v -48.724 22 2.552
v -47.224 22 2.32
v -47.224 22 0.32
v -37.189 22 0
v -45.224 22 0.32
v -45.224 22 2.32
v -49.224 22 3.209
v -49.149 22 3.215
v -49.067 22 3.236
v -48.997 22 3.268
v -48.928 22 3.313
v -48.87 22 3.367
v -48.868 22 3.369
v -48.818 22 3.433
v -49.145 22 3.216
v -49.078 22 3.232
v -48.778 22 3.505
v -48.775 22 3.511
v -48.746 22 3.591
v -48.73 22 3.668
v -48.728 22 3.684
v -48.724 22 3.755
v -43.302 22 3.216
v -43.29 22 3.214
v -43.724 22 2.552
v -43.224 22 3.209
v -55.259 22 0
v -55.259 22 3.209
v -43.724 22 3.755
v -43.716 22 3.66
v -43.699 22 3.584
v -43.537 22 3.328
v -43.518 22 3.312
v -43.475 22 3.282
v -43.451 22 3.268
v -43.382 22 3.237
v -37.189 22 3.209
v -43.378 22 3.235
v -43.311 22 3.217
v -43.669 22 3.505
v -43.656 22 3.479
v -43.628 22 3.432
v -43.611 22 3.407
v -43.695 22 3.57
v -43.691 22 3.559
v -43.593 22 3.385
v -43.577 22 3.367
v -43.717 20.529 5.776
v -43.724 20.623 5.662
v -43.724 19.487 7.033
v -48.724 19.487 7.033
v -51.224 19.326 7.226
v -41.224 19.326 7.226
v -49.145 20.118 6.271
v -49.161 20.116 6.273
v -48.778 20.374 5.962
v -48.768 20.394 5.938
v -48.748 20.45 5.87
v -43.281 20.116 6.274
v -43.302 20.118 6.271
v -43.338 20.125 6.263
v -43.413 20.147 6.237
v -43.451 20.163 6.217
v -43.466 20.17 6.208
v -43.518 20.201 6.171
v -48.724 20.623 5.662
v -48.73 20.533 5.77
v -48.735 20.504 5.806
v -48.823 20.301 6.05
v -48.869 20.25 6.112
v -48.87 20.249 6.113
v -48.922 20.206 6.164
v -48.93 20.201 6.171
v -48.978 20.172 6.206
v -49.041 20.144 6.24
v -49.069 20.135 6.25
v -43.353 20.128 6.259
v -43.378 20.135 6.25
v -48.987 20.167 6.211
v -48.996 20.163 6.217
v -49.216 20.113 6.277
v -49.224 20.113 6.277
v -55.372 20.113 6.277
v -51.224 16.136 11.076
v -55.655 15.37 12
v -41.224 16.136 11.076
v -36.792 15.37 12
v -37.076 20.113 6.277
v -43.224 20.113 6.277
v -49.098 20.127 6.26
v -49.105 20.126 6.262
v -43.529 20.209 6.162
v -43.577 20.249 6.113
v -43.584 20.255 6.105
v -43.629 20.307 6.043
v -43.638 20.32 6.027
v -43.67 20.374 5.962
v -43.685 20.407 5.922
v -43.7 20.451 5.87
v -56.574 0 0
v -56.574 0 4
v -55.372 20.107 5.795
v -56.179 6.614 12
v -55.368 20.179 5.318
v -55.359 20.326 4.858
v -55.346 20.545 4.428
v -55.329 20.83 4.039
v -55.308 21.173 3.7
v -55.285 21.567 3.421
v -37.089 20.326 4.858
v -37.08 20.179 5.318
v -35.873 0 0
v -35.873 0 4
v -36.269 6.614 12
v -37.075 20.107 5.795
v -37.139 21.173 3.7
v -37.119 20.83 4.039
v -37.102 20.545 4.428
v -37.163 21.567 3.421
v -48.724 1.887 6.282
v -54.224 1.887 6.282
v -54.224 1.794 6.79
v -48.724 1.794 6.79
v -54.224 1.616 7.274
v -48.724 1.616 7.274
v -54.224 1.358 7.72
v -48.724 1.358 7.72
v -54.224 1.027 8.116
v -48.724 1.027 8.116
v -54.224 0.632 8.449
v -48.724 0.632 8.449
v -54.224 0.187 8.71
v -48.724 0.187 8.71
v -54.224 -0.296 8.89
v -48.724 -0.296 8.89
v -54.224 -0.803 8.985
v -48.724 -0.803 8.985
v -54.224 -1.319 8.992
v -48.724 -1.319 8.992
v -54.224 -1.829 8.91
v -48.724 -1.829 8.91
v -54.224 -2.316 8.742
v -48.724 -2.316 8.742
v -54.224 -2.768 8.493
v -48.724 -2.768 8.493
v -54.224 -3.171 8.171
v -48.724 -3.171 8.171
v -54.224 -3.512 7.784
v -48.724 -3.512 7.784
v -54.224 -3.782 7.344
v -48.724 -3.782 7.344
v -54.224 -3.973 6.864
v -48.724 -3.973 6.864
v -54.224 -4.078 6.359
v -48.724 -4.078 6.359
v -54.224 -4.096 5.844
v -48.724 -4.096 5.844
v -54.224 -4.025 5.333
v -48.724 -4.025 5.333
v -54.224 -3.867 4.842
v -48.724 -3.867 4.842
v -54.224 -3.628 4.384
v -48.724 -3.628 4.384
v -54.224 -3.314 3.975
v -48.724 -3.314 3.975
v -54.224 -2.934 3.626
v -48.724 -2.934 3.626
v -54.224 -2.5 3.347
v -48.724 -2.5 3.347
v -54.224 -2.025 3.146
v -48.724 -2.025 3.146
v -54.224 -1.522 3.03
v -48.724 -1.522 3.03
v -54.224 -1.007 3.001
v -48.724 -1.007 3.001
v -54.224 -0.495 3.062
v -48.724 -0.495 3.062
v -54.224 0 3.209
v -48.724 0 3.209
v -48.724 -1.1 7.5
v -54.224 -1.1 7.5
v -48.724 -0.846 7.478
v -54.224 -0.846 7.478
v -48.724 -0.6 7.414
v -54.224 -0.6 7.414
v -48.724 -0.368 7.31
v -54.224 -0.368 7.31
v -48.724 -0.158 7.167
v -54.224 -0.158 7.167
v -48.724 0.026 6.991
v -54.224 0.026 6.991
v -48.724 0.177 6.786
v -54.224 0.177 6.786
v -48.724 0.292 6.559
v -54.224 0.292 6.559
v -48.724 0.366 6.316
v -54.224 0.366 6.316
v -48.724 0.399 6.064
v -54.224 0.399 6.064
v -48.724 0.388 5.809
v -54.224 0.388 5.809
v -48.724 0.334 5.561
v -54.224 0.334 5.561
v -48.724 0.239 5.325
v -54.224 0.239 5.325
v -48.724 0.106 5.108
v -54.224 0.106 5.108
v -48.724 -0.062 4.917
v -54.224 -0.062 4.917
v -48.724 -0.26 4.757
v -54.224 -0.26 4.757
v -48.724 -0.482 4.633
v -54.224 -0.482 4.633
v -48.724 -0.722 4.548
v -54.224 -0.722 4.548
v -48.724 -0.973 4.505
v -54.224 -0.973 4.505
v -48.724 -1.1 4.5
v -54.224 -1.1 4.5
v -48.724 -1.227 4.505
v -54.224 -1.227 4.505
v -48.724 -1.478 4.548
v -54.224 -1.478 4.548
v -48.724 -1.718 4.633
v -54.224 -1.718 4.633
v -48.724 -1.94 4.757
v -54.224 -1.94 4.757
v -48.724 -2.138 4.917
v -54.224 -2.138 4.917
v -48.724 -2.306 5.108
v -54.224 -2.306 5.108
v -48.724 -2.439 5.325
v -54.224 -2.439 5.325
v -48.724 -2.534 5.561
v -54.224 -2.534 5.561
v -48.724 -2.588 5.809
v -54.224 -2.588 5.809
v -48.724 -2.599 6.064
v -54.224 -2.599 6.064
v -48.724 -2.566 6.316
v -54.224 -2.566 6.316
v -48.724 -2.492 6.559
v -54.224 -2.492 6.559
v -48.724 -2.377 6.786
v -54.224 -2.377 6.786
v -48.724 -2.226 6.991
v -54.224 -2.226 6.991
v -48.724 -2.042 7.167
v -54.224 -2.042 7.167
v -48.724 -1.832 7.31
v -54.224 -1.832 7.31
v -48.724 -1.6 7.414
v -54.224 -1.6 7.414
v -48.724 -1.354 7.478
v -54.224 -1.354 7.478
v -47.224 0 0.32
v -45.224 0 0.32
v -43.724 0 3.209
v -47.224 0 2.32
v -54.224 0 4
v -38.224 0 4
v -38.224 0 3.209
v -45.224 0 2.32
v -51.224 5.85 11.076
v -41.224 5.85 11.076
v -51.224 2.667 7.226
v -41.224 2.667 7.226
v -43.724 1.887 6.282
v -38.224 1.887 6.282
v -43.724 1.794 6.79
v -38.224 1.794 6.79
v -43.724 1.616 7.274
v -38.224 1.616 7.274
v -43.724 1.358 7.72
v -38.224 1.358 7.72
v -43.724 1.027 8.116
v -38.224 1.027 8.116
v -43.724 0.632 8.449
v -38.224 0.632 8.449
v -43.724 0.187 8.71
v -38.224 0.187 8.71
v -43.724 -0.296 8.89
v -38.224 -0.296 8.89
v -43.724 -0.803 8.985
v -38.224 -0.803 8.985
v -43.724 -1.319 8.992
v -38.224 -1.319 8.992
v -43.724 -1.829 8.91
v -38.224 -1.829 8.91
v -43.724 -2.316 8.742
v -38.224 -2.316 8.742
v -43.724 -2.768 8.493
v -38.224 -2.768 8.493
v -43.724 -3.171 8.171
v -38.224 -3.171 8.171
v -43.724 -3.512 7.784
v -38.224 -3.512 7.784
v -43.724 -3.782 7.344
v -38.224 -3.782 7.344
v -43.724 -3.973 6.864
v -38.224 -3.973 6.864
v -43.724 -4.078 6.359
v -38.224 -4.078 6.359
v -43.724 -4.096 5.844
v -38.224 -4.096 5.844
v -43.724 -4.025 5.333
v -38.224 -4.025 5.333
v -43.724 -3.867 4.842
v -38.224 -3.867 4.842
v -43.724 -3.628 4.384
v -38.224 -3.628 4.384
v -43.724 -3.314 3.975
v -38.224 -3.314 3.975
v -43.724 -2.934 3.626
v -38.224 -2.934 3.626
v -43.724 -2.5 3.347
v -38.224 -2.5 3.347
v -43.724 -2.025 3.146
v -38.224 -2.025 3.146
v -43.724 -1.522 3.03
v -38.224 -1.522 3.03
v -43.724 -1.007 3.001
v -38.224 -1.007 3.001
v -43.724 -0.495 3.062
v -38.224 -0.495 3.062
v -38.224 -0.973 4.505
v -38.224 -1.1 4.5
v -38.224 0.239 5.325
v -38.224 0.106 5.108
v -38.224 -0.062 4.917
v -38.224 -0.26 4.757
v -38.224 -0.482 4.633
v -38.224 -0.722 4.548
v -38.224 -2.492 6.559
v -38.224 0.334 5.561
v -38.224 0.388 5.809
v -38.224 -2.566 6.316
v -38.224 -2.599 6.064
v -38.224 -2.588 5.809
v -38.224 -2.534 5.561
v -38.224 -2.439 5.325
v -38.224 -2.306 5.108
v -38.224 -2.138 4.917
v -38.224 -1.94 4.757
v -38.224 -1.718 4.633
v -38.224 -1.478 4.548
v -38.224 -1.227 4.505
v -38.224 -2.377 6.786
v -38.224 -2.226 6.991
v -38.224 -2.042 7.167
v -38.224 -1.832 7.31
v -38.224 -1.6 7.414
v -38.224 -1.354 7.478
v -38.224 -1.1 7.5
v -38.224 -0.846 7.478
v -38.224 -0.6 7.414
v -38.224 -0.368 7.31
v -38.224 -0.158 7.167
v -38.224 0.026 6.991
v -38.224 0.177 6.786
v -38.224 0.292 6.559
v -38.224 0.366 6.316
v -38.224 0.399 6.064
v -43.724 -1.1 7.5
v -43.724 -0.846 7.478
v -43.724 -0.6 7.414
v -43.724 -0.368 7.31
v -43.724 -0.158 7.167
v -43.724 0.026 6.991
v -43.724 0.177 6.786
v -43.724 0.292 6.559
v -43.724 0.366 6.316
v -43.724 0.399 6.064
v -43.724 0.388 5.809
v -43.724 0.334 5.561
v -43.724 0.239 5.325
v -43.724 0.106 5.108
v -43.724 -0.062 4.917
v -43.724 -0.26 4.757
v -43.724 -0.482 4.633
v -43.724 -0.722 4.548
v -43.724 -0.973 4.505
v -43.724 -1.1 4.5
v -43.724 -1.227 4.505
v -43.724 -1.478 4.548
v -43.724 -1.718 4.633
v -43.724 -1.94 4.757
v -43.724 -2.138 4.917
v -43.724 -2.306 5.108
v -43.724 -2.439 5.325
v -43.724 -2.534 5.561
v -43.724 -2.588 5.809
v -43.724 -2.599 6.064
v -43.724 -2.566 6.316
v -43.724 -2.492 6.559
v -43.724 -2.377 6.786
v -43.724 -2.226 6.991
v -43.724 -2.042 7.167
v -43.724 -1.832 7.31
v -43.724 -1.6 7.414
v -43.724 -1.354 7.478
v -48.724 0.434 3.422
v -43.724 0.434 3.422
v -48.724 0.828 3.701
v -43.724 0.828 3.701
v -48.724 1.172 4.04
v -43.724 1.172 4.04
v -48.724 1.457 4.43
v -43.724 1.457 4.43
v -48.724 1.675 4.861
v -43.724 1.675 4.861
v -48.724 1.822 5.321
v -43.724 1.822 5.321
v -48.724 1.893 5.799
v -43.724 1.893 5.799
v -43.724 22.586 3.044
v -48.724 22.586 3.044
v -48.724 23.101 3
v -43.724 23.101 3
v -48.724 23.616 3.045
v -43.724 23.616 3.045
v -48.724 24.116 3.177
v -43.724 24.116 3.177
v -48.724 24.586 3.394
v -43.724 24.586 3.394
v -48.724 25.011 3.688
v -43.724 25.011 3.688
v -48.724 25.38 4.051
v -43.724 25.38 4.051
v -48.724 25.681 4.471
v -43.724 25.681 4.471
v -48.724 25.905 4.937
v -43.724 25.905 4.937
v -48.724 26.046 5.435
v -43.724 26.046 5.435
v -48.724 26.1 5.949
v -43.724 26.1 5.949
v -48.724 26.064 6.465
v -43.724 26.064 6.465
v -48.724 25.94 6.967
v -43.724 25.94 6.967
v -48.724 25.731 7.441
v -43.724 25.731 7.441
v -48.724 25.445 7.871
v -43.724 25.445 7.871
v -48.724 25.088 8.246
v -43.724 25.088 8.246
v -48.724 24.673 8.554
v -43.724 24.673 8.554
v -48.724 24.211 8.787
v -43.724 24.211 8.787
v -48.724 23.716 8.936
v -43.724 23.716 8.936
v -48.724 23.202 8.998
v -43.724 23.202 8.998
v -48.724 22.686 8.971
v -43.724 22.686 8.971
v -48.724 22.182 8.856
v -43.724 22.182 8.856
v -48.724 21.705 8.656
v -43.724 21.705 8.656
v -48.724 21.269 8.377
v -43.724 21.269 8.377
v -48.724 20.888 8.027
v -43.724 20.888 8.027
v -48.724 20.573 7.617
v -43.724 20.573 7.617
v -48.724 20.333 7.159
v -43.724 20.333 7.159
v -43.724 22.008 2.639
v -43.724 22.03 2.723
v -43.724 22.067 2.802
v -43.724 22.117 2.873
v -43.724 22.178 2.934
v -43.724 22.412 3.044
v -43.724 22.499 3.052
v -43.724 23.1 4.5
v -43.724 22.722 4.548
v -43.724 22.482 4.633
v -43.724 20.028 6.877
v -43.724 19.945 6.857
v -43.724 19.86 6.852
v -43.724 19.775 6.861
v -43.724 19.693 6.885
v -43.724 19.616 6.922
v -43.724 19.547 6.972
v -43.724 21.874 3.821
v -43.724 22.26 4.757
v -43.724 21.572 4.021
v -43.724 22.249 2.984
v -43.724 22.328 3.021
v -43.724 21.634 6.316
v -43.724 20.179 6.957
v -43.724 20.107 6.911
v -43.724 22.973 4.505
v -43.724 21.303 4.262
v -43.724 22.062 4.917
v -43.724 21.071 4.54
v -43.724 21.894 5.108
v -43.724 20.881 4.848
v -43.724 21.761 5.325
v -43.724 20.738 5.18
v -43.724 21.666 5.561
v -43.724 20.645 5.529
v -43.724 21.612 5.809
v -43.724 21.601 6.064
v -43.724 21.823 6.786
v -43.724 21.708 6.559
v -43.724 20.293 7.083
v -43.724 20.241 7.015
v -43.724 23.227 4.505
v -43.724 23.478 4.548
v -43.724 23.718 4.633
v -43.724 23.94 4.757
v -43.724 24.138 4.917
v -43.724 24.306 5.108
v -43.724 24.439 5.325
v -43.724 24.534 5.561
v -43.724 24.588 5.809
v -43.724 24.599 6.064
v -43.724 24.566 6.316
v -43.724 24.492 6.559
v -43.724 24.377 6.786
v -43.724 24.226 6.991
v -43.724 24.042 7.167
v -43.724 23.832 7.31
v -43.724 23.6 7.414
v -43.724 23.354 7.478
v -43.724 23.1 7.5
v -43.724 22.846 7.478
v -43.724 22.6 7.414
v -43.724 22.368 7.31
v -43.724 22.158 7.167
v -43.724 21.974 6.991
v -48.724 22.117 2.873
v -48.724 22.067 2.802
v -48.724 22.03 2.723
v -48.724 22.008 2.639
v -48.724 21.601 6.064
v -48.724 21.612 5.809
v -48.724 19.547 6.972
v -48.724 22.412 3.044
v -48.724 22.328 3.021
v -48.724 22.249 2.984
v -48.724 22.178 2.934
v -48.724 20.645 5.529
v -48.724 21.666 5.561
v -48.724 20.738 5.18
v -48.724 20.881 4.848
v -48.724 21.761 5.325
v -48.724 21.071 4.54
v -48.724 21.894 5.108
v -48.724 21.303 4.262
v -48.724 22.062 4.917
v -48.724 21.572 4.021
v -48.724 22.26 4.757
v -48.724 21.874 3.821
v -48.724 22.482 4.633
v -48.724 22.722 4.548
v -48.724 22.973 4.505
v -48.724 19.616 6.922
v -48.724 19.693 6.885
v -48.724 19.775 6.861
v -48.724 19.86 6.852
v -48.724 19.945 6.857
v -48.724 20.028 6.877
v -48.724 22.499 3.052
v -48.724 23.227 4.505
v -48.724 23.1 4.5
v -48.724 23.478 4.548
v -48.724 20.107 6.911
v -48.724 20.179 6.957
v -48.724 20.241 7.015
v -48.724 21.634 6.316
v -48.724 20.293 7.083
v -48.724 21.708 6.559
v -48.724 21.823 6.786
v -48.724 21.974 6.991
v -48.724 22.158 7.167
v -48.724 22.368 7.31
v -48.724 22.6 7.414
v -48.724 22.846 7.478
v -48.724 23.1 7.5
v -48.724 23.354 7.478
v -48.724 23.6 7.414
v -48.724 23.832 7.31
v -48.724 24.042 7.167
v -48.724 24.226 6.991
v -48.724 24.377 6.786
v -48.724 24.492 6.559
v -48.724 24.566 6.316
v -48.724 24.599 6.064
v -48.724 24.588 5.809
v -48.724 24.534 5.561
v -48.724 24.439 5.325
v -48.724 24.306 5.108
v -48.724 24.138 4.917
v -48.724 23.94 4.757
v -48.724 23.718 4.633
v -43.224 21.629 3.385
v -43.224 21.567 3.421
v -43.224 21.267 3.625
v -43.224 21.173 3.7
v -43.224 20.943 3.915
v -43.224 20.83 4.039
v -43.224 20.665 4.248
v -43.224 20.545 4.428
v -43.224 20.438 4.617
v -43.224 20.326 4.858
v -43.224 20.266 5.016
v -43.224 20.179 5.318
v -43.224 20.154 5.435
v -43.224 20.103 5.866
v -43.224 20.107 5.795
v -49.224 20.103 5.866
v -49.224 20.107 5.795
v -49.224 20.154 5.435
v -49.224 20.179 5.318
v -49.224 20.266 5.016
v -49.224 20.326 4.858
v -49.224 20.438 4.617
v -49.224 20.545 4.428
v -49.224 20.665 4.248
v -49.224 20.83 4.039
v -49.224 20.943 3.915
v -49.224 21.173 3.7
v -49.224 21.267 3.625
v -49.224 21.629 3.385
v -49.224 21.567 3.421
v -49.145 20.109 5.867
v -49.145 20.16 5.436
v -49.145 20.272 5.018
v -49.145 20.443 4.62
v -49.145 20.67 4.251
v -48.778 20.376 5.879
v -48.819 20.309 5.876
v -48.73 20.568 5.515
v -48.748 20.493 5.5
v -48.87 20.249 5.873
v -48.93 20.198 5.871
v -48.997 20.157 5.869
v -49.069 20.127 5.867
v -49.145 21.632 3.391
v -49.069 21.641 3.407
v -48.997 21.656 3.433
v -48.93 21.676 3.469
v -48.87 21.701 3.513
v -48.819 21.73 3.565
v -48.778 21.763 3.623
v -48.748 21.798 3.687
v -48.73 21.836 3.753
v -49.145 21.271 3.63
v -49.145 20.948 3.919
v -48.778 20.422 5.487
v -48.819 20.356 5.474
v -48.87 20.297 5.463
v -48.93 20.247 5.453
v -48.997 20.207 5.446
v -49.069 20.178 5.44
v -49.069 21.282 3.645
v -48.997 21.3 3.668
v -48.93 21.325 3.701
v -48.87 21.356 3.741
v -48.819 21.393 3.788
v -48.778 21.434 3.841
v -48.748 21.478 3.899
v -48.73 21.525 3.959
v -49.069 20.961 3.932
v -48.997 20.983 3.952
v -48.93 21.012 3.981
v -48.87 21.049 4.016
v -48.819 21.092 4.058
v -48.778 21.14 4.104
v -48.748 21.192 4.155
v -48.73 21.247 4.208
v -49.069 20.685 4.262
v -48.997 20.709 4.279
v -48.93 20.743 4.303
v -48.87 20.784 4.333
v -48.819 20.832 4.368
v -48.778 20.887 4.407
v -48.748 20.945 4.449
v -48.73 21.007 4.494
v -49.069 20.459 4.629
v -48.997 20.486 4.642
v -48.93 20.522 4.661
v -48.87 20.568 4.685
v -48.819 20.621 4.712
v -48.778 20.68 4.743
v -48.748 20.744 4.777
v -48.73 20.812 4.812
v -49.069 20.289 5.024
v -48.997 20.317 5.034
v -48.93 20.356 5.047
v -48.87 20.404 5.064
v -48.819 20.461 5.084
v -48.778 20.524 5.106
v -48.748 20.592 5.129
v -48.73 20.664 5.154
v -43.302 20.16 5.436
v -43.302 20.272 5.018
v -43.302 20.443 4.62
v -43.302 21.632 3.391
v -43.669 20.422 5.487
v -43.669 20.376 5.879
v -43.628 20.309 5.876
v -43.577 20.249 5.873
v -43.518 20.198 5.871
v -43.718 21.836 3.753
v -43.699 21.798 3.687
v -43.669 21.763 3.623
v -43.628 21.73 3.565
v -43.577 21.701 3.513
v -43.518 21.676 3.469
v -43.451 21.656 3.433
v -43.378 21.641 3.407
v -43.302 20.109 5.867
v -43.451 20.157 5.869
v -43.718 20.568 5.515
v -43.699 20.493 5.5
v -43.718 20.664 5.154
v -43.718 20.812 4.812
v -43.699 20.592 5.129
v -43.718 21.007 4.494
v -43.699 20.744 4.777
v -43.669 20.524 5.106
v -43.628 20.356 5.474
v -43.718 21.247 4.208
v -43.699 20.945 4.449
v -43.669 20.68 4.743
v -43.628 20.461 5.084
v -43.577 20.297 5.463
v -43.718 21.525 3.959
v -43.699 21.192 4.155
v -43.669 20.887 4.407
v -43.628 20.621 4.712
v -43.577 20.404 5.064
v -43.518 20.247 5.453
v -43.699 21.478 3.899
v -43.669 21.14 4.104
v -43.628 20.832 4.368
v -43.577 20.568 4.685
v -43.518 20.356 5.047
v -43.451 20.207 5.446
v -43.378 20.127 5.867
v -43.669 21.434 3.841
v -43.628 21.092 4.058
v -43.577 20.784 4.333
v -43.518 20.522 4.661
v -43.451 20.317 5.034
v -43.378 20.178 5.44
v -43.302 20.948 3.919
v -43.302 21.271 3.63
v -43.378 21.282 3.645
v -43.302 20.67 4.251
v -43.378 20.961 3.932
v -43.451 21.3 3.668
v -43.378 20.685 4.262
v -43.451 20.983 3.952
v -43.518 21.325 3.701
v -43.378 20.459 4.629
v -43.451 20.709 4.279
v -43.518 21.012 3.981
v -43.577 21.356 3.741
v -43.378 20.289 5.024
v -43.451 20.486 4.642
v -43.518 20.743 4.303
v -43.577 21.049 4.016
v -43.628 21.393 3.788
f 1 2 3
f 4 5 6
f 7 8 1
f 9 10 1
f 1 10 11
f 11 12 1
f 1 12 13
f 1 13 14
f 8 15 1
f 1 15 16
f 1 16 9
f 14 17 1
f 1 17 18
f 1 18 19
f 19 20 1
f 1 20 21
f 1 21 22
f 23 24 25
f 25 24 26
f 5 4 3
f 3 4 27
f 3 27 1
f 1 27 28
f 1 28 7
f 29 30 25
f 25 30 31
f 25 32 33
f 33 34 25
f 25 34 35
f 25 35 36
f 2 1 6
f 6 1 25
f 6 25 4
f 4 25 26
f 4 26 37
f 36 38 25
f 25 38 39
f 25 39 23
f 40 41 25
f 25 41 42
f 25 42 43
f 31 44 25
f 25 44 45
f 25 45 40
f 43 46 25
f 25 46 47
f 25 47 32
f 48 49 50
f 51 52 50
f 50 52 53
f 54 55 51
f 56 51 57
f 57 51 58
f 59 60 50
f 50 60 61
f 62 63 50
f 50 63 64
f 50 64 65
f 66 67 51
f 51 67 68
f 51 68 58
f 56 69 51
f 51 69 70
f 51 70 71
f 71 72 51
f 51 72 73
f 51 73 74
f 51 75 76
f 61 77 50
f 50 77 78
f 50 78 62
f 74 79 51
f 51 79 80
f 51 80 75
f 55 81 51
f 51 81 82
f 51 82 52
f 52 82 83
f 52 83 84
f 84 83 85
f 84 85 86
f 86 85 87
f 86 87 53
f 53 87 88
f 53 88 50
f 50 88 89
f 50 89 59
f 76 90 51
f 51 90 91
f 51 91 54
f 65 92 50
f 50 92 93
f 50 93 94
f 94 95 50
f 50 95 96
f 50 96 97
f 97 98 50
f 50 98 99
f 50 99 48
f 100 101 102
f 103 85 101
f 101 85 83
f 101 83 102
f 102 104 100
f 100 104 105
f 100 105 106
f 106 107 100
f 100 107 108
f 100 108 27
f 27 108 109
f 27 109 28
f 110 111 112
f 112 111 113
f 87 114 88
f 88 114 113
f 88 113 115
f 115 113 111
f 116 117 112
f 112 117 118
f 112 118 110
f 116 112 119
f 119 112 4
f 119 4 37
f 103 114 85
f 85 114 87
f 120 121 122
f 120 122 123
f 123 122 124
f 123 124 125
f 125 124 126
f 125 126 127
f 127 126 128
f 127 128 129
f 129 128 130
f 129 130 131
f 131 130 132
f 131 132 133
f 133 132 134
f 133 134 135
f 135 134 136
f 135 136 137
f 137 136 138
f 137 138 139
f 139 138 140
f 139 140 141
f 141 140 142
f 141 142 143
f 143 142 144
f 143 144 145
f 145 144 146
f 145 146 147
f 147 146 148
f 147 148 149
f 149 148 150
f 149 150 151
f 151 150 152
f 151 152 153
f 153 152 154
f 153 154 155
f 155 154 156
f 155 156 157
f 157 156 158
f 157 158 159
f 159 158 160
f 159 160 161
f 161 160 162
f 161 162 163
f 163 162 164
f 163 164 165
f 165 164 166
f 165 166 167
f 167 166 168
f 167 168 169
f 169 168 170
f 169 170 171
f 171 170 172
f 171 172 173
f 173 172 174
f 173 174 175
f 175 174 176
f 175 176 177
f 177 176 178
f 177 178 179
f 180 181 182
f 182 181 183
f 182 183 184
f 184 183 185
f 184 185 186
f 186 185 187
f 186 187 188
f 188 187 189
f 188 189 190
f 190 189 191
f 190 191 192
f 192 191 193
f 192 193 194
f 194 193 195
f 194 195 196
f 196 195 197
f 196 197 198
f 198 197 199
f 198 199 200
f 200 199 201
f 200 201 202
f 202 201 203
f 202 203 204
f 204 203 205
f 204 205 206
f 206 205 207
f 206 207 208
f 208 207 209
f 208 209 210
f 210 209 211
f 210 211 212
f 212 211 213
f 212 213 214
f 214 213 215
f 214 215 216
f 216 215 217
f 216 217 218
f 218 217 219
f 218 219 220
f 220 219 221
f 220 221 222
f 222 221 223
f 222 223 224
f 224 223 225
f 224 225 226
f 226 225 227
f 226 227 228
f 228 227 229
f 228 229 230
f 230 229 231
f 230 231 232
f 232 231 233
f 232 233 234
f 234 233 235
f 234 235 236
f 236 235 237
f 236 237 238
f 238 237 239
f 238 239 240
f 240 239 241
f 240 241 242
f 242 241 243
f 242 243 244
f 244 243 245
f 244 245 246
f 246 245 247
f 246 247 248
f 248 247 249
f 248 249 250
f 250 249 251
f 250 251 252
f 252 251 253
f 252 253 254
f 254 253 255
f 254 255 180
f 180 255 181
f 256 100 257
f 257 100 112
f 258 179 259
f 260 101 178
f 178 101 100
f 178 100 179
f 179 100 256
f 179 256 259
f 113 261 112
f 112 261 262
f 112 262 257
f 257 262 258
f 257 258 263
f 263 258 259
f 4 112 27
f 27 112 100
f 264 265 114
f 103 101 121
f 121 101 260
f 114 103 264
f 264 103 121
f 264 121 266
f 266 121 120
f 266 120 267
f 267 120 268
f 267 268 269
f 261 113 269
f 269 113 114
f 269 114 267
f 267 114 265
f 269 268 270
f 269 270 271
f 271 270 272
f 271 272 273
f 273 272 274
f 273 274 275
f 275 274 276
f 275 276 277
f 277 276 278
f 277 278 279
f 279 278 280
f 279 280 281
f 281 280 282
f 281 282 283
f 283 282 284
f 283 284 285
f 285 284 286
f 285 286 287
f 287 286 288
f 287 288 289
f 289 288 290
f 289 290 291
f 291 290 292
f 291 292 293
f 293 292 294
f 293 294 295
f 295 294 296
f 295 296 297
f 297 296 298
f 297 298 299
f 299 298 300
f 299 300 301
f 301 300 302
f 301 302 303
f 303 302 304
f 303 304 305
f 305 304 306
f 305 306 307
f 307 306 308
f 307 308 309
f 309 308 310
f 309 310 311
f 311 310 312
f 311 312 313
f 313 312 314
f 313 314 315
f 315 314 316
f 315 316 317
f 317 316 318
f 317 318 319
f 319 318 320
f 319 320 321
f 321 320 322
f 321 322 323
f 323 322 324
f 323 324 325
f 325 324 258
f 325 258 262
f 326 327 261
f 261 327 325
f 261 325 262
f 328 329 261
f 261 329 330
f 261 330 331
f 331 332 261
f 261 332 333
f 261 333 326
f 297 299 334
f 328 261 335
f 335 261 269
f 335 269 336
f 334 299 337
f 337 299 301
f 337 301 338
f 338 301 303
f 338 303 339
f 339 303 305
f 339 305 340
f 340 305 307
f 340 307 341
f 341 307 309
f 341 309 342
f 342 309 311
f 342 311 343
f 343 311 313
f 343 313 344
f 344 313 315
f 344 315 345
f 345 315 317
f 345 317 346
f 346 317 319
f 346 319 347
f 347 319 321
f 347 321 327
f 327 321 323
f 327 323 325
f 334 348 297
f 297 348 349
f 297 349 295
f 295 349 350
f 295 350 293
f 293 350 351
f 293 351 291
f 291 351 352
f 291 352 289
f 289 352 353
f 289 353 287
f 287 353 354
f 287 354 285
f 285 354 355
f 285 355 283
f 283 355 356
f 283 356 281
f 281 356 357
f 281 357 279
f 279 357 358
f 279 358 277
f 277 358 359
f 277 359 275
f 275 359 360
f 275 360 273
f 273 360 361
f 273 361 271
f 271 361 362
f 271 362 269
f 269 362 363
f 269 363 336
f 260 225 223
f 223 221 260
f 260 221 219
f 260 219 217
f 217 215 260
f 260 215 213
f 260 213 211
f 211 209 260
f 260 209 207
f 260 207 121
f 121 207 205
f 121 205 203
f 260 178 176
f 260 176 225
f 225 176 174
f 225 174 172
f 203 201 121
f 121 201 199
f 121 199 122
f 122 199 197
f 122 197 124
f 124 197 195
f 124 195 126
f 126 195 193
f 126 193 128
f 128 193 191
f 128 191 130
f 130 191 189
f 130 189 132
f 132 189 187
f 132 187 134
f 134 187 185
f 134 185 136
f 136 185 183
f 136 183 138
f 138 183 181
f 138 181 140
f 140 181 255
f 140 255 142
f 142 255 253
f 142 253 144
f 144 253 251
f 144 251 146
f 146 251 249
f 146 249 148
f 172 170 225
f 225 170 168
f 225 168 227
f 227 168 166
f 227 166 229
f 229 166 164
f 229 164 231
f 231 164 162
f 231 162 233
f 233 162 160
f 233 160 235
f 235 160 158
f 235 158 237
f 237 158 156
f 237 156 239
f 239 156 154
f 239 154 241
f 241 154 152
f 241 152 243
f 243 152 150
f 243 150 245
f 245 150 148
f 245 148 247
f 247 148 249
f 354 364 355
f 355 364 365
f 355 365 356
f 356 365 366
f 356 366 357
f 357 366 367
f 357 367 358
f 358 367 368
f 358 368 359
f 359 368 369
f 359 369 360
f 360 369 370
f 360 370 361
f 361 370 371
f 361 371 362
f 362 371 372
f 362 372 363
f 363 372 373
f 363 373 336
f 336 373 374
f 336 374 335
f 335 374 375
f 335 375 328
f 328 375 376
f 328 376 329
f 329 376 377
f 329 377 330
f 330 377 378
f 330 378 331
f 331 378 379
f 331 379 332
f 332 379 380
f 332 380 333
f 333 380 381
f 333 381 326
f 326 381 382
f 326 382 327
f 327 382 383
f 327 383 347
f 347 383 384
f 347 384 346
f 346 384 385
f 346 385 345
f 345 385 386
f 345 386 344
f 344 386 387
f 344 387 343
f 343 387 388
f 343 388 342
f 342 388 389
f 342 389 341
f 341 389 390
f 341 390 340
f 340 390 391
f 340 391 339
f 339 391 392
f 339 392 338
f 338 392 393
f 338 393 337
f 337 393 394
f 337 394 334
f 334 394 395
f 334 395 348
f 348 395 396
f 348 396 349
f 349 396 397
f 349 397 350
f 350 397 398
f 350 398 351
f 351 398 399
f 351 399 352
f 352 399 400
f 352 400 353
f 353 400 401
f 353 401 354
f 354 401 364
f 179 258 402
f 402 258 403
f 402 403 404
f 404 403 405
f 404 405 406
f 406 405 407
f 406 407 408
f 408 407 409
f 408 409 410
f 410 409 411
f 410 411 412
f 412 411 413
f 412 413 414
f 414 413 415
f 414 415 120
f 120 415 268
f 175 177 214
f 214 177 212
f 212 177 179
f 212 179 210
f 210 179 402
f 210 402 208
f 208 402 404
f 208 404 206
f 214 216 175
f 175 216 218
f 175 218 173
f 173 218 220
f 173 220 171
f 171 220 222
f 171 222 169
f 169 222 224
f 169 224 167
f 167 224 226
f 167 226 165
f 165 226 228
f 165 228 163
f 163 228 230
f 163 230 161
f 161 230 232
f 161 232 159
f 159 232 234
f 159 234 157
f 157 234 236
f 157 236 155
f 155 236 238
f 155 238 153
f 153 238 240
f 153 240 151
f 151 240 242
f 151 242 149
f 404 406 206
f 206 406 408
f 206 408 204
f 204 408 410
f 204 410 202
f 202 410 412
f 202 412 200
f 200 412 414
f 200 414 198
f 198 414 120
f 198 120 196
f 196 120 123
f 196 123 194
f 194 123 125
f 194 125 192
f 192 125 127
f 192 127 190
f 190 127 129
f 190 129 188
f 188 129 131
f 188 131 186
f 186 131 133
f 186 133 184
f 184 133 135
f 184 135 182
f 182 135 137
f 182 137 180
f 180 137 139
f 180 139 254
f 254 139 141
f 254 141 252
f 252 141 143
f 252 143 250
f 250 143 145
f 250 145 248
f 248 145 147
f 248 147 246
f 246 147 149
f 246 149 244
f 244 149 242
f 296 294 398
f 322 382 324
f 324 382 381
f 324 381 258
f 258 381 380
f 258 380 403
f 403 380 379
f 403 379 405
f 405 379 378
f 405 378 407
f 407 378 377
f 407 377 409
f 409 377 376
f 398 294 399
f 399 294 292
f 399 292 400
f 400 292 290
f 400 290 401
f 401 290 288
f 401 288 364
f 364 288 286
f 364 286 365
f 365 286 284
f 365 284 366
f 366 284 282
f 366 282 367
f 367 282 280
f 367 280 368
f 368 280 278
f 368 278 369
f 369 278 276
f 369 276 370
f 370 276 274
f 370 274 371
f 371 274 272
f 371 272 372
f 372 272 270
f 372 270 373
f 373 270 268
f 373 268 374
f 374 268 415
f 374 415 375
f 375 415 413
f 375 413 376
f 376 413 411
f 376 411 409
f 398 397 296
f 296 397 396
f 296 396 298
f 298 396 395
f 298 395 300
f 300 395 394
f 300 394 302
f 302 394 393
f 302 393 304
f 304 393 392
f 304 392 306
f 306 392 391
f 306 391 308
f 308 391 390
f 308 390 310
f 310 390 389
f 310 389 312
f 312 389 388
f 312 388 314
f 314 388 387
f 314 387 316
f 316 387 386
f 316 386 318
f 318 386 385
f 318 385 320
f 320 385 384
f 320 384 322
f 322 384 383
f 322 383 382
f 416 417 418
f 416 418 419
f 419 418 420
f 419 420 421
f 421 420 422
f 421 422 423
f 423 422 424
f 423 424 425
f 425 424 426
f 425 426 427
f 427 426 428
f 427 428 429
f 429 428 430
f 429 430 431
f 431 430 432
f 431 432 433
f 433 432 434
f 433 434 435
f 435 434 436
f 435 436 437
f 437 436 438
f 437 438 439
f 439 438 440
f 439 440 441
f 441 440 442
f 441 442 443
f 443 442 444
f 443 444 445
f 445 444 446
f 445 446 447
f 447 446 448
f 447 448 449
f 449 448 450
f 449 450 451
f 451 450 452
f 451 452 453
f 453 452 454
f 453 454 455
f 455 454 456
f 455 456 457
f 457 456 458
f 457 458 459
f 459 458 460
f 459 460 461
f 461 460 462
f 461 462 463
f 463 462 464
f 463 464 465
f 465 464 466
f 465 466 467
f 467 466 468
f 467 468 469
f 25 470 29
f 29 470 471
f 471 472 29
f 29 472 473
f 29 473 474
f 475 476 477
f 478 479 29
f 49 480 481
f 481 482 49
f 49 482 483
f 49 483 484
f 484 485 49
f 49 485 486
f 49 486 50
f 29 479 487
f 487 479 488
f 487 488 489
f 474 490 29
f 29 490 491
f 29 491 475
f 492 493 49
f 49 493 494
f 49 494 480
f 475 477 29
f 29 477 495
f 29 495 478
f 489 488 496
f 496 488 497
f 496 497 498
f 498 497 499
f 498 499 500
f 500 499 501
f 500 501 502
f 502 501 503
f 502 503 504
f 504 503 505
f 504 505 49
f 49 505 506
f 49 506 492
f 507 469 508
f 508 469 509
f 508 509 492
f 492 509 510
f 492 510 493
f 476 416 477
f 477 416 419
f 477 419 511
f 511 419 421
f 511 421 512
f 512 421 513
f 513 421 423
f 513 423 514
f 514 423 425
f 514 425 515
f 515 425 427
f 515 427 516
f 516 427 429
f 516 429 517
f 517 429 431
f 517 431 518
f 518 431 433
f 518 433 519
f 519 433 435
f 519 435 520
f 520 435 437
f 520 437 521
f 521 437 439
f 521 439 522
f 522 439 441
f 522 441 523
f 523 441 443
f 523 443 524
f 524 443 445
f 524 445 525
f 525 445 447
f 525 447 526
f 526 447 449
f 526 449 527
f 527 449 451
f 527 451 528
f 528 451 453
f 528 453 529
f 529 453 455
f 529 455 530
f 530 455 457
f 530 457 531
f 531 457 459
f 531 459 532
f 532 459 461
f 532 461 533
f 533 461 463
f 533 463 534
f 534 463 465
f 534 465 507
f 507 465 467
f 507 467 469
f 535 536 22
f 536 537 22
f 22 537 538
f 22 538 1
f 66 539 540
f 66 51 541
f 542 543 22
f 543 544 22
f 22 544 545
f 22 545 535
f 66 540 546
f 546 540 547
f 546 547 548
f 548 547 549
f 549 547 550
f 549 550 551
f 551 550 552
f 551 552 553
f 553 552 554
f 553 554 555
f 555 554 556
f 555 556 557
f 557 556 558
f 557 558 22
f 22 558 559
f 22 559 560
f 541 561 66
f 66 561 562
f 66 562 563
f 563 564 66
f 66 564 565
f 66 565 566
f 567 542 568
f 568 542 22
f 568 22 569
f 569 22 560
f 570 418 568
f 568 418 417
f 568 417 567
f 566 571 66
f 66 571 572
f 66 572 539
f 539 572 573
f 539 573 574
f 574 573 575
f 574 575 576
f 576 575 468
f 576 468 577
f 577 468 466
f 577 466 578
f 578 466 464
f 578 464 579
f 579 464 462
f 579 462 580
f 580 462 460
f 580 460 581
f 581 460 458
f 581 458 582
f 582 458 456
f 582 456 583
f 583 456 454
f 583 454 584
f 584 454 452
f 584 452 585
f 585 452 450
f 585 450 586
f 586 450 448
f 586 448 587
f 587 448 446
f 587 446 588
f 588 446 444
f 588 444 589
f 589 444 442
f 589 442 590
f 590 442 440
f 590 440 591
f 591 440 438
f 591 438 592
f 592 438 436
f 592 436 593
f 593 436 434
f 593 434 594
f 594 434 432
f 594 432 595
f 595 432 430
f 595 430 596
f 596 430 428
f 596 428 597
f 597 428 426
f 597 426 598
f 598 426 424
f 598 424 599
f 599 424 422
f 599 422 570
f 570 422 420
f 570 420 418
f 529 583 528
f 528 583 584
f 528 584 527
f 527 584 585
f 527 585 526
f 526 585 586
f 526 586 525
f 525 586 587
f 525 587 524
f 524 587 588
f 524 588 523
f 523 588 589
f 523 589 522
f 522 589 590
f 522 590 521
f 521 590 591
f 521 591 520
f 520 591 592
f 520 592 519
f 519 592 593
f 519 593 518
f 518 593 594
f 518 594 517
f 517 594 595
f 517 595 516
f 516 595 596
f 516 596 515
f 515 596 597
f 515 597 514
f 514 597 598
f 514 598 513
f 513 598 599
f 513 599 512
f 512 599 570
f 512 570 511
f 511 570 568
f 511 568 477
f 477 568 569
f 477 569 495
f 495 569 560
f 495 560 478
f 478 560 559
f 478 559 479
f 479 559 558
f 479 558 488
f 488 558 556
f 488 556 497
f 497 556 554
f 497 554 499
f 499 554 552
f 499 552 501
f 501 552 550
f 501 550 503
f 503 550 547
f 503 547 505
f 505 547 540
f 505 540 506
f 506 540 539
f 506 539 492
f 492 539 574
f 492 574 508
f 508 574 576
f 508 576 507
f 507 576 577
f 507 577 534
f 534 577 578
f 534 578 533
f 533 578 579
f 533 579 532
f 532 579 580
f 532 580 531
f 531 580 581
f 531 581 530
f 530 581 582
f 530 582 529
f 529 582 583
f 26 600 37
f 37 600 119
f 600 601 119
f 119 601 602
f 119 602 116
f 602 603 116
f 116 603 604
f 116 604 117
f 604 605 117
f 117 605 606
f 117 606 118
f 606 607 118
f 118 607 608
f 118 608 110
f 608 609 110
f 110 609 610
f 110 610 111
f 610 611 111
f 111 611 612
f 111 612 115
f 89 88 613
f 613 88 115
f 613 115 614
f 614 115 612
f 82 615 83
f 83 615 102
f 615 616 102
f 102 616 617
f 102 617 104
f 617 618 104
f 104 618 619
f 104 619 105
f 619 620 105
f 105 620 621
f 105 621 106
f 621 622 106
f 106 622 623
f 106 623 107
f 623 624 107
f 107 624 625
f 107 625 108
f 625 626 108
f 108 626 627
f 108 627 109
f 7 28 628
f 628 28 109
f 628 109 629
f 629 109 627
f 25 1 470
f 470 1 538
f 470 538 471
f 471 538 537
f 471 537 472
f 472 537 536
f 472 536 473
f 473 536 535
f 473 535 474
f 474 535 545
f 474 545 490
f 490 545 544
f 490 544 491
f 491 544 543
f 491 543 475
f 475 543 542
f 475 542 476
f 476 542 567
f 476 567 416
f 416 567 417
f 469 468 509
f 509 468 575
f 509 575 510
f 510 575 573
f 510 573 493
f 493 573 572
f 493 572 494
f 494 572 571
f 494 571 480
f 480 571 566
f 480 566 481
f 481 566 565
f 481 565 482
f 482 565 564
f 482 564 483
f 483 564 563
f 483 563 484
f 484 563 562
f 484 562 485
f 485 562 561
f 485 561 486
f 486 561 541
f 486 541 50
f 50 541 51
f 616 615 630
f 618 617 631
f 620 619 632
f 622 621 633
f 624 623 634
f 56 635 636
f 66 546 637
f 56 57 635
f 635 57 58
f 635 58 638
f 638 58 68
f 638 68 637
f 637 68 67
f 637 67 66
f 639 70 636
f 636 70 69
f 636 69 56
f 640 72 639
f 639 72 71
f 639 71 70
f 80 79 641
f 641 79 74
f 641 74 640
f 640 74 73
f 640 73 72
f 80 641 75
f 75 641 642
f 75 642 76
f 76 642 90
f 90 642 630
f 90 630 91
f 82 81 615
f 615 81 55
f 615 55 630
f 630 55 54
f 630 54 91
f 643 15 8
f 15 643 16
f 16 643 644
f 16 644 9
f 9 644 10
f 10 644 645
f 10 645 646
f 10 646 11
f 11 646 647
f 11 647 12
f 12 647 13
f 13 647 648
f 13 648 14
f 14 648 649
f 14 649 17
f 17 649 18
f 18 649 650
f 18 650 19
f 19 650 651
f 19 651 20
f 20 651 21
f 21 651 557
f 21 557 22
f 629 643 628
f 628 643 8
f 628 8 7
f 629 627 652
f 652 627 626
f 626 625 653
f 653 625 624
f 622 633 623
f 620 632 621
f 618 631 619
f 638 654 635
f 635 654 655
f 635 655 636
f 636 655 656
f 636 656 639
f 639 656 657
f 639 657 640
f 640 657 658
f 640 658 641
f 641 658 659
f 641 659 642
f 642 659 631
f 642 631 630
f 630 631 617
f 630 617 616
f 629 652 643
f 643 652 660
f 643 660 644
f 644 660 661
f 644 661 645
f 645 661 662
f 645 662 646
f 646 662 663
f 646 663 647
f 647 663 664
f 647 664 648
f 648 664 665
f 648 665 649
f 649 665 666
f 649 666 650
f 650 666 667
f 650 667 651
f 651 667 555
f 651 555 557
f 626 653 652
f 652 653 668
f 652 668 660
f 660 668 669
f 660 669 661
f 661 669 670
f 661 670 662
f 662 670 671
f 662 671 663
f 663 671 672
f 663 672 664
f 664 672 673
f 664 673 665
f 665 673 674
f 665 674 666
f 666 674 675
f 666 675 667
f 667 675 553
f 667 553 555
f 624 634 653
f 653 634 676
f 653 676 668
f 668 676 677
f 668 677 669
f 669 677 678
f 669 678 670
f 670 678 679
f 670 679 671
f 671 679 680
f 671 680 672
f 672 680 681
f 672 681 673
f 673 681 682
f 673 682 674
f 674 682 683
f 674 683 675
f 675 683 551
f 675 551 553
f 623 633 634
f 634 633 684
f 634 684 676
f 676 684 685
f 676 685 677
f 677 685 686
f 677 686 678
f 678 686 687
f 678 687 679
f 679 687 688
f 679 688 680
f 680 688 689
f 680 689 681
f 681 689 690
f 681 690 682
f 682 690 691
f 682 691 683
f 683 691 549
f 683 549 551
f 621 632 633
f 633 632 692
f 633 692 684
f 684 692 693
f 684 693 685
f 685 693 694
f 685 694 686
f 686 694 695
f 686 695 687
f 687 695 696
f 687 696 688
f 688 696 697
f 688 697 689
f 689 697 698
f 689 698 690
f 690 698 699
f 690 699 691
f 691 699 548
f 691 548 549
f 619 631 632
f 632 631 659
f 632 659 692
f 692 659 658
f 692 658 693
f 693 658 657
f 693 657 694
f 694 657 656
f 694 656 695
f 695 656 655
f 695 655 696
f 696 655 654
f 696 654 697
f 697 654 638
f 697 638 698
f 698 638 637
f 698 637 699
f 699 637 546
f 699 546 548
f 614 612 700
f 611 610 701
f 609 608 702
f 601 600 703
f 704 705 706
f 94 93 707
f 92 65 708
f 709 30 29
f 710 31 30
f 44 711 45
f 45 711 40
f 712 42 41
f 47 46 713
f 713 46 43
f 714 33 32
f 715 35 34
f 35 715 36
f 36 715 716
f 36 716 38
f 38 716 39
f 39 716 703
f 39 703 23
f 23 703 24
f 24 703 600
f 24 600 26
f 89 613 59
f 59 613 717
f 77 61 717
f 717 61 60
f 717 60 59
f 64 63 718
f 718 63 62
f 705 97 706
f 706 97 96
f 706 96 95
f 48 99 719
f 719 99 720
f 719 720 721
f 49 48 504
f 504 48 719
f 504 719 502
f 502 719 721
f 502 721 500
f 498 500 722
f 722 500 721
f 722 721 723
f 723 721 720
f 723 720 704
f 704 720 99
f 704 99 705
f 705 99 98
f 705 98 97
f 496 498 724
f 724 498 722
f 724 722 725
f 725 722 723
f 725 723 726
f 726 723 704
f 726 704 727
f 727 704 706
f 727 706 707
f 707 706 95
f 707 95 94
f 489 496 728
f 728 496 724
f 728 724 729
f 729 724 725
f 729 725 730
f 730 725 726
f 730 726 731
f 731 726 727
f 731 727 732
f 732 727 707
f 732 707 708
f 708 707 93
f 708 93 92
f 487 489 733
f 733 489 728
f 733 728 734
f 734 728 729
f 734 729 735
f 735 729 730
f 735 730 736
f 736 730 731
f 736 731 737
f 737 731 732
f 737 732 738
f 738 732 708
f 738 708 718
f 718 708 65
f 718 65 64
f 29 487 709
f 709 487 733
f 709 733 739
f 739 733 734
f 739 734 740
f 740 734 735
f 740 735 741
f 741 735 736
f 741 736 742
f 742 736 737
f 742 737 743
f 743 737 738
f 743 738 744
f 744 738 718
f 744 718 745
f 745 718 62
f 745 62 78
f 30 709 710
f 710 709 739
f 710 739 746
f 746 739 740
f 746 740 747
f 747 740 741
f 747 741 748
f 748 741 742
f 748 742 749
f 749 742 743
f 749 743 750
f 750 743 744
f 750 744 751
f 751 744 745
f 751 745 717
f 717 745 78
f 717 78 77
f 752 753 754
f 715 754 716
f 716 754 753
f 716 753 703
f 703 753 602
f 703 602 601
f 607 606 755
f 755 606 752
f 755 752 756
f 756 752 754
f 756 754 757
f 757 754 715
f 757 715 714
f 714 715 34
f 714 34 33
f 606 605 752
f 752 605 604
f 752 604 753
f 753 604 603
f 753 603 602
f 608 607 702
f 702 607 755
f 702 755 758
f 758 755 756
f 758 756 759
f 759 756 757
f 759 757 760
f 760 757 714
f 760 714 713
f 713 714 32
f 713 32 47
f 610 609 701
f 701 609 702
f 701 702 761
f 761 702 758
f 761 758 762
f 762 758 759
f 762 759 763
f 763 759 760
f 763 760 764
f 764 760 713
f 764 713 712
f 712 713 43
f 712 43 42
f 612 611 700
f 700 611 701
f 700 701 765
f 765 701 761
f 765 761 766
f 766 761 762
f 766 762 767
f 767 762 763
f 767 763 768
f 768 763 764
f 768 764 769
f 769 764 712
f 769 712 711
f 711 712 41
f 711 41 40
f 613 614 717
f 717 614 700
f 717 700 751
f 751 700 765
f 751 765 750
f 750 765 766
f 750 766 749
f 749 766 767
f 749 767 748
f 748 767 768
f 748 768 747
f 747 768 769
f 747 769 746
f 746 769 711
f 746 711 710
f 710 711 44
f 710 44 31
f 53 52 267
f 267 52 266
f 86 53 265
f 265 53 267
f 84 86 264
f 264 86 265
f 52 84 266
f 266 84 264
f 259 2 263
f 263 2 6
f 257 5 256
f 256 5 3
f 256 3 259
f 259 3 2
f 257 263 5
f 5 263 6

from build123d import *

# Parameters (mm, degrees)
BOSS_EXTRUDE1_DEPTH            = 12
CUT_EXTRUDE1_DEPTH             = 28.113370808
CUT_EXTRUDE1_DEPTH_BACK        = 28.113370808
SKETCH6_R                      = 3
SKETCH6_R_2                    = 1.5
BOSS_EXTRUDE2_DEPTH            = 8
SKETCH6_3_R                    = 3
SKETCH6_3_R_2                  = 1.5
CUT_EXTRUDE2_DEPTH             = 2.5
CUT_EXTRUDE3_DEPTH             = 28.113370808
CUT_EXTRUDE3_DEPTH_BACK        = 28.113370808
SKETCH9_R                      = 3
SKETCH9_R_2                    = 1.5
BOSS_EXTRUDE3_DEPTH            = 2.5
CUT_EXTRUDE4_START             = 10
SKETCH11_R                     = 3
CUT_EXTRUDE4_DEPTH             = 10
SKETCH12_R                     = 3
CUT_EXTRUDE5_DEPTH             = 10
FILLET1_R                      = 0.5
FILLET2_R                      = 0.5
CUT_EXTRUDE6_REACH             = 62.032
SKETCH14_W                     = 10
SKETCH14_H                     = 3.849855631
CUT_EXTRUDE6_DIRECTION_2_REACH = 62.032
CUT_EXTRUDE7_DEPTH             = 1


with BuildPart() as part:
    # Sketch1 → Boss-Extrude1 (new body)
    with BuildSketch(Plane.XY):
        Polygon((-56.5742778, 0), (-35.873082033, 0), (-37.188679916, 22), (-55.258679916, 22), align=None)
    extrude(amount=BOSS_EXTRUDE1_DEPTH)

    # Sketch3 → Cut-Extrude1 (cut, two sides: drawn at the far end of the back side and taken through both)
    with BuildSketch(Plane(origin=(-46.223679916, 0, 0), x_dir=(0, 0, -1), z_dir=(1, 0, 0)).offset(-CUT_EXTRUDE1_DEPTH_BACK)):
        Polygon((-12, 0), (-4, 0), (-12, 6.613954944), align=None)
    extrude(amount=CUT_EXTRUDE1_DEPTH + CUT_EXTRUDE1_DEPTH_BACK, mode=Mode.SUBTRACT)

    # Sketch6 → Boss-Extrude2 (add, symmetric)
    with BuildSketch(Plane(origin=(-46.223679916, 0, 0), x_dir=(0, 0, -1), z_dir=(1, 0, 0))):
        with Locations((-6, -1.1)):
            Circle(SKETCH6_R)
        with Locations((-6, -1.1)):
            Circle(SKETCH6_R_2, mode=Mode.SUBTRACT)
    extrude(amount=BOSS_EXTRUDE2_DEPTH, both=True)

    # Sketch6<3> → Cut-Extrude2 (cut, symmetric)
    with BuildSketch(Plane(origin=(-46.223679916, 0, 0), x_dir=(0, 0, -1), z_dir=(1, 0, 0))):
        with Locations((-6, -1.1)):
            Circle(SKETCH6_3_R)
        with Locations((-6, -1.1)):
            Circle(SKETCH6_3_R_2, mode=Mode.SUBTRACT)
    extrude(amount=CUT_EXTRUDE2_DEPTH, both=True, mode=Mode.SUBTRACT)

    # Sketch8 → Cut-Extrude3 (cut, two sides: drawn at the far end of the back side and taken through both)
    with BuildSketch(Plane(origin=(-46.223679916, 0, 0), x_dir=(0, 0, -1), z_dir=(1, 0, 0)).offset(-CUT_EXTRUDE3_DEPTH_BACK)):
        Polygon((-12, 15.370362001), (-4, 22), (-12, 22), align=None)
    extrude(amount=CUT_EXTRUDE3_DEPTH + CUT_EXTRUDE3_DEPTH_BACK, mode=Mode.SUBTRACT)

    # Sketch9 → Boss-Extrude3 (add, symmetric)
    with BuildSketch(Plane(origin=(-46.223679916, 0, 0), x_dir=(0, 0, -1), z_dir=(1, 0, 0))):
        with Locations((-6, 23.1)):
            Circle(SKETCH9_R)
        with Locations((-6, 23.1)):
            Circle(SKETCH9_R_2, mode=Mode.SUBTRACT)
    extrude(amount=BOSS_EXTRUDE3_DEPTH, both=True)

    # Sketch11 → Cut-Extrude4 (cut)
    with BuildSketch(Plane(origin=(-43.723679916, 0, 0), x_dir=(0, 0, -1), z_dir=(1, 0, 0)).offset(CUT_EXTRUDE4_START)):
        with Locations((-6, 23.1)):
            Circle(SKETCH11_R)
    extrude(amount=-CUT_EXTRUDE4_DEPTH, mode=Mode.SUBTRACT)

    # Sketch12 → Cut-Extrude5 (cut)
    with BuildSketch(Plane.ZY.offset(48.723679916)):
        with Locations((6, 23.1)):
            Circle(SKETCH12_R)
    extrude(amount=CUT_EXTRUDE5_DEPTH, mode=Mode.SUBTRACT)

    # Fillet1
    fillet1_edges = [part.edges().sort_by_distance(p)[0] for p in [
        (-46.223679916, 22, 3.208942853),
        (-46.223679916, 20.112838065, 6.277242812),
    ]]
    fillet(fillet1_edges, radius=FILLET1_R)

    # Fillet2
    fillet2_edges = [part.edges().sort_by_distance(p)[0] for p in [
        (-48.723679916, 20.54464497, 4.42832552),
        (-43.723679916, 20.54464497, 4.42832552),
    ]]
    fillet(fillet2_edges, radius=FILLET2_R)

    # Cut-Extrude6: up to this plane
    cut_extrude6_end = Plane(origin=(-56.5742778, -1.96433929, 1.624006445), z_dir=(0, 0.7707129094412332, -0.6371825572162422))
    # Sketch14 → Cut-Extrude6 (cut, up to the surface)
    with BuildSketch(Plane(origin=(0, 10, 0), x_dir=(1, 0, 0), z_dir=(0, 1, 0)), mode=Mode.PRIVATE) as cut_extrude6_sk1:
        with Locations((-46.223679916, -9.151106834)):
            Rectangle(SKETCH14_W, SKETCH14_H)
    cut_extrude6_tool1 = split(extrude(cut_extrude6_sk1.sketch, amount=-CUT_EXTRUDE6_REACH, mode=Mode.PRIVATE), bisect_by=cut_extrude6_end, keep=Keep.BOTH, mode=Mode.PRIVATE)
    add(cut_extrude6_tool1.solids().sort_by_distance((-46.22368, 10, 9.151107))[0], mode=Mode.SUBTRACT)

    # Cut-Extrude6 direction 2: up to this plane
    cut_extrude6_direction_2_end = Plane(origin=(-56.5742778, 15.008030561, 12.437226213), z_dir=(0, 0.769971126082772, 0.6380787294674757))
    # Sketch14 → Cut-Extrude6 direction 2 (cut, up to the surface)
    with BuildSketch(Plane(origin=(0, 10, 0), x_dir=(1, 0, 0), z_dir=(0, 1, 0)), mode=Mode.PRIVATE) as cut_extrude6_direction_2_sk1:
        with Locations((-46.223679916, -9.151106834)):
            Rectangle(SKETCH14_W, SKETCH14_H)
    cut_extrude6_direction_2_tool1 = split(extrude(cut_extrude6_direction_2_sk1.sketch, amount=CUT_EXTRUDE6_DIRECTION_2_REACH, mode=Mode.PRIVATE), bisect_by=cut_extrude6_direction_2_end, keep=Keep.BOTH, mode=Mode.PRIVATE)
    add(cut_extrude6_direction_2_tool1.solids().sort_by_distance((-46.22368, 10, 9.151107))[0], mode=Mode.SUBTRACT)

    # Sketch15 → Cut-Extrude7 (cut, symmetric)
    with BuildSketch(Plane(origin=(-46.223679916, 0, 0), x_dir=(0, 0, -1), z_dir=(1, 0, 0))):
        Polygon((-2.32, 0), (-2.32, 24.910570124), (-0.32, 24.910570124), (-0.32, -0.739577641), (-2.32, -0.739577641), align=None)
    extrude(amount=CUT_EXTRUDE7_DEPTH, both=True, mode=Mode.SUBTRACT)


solid = part.part
